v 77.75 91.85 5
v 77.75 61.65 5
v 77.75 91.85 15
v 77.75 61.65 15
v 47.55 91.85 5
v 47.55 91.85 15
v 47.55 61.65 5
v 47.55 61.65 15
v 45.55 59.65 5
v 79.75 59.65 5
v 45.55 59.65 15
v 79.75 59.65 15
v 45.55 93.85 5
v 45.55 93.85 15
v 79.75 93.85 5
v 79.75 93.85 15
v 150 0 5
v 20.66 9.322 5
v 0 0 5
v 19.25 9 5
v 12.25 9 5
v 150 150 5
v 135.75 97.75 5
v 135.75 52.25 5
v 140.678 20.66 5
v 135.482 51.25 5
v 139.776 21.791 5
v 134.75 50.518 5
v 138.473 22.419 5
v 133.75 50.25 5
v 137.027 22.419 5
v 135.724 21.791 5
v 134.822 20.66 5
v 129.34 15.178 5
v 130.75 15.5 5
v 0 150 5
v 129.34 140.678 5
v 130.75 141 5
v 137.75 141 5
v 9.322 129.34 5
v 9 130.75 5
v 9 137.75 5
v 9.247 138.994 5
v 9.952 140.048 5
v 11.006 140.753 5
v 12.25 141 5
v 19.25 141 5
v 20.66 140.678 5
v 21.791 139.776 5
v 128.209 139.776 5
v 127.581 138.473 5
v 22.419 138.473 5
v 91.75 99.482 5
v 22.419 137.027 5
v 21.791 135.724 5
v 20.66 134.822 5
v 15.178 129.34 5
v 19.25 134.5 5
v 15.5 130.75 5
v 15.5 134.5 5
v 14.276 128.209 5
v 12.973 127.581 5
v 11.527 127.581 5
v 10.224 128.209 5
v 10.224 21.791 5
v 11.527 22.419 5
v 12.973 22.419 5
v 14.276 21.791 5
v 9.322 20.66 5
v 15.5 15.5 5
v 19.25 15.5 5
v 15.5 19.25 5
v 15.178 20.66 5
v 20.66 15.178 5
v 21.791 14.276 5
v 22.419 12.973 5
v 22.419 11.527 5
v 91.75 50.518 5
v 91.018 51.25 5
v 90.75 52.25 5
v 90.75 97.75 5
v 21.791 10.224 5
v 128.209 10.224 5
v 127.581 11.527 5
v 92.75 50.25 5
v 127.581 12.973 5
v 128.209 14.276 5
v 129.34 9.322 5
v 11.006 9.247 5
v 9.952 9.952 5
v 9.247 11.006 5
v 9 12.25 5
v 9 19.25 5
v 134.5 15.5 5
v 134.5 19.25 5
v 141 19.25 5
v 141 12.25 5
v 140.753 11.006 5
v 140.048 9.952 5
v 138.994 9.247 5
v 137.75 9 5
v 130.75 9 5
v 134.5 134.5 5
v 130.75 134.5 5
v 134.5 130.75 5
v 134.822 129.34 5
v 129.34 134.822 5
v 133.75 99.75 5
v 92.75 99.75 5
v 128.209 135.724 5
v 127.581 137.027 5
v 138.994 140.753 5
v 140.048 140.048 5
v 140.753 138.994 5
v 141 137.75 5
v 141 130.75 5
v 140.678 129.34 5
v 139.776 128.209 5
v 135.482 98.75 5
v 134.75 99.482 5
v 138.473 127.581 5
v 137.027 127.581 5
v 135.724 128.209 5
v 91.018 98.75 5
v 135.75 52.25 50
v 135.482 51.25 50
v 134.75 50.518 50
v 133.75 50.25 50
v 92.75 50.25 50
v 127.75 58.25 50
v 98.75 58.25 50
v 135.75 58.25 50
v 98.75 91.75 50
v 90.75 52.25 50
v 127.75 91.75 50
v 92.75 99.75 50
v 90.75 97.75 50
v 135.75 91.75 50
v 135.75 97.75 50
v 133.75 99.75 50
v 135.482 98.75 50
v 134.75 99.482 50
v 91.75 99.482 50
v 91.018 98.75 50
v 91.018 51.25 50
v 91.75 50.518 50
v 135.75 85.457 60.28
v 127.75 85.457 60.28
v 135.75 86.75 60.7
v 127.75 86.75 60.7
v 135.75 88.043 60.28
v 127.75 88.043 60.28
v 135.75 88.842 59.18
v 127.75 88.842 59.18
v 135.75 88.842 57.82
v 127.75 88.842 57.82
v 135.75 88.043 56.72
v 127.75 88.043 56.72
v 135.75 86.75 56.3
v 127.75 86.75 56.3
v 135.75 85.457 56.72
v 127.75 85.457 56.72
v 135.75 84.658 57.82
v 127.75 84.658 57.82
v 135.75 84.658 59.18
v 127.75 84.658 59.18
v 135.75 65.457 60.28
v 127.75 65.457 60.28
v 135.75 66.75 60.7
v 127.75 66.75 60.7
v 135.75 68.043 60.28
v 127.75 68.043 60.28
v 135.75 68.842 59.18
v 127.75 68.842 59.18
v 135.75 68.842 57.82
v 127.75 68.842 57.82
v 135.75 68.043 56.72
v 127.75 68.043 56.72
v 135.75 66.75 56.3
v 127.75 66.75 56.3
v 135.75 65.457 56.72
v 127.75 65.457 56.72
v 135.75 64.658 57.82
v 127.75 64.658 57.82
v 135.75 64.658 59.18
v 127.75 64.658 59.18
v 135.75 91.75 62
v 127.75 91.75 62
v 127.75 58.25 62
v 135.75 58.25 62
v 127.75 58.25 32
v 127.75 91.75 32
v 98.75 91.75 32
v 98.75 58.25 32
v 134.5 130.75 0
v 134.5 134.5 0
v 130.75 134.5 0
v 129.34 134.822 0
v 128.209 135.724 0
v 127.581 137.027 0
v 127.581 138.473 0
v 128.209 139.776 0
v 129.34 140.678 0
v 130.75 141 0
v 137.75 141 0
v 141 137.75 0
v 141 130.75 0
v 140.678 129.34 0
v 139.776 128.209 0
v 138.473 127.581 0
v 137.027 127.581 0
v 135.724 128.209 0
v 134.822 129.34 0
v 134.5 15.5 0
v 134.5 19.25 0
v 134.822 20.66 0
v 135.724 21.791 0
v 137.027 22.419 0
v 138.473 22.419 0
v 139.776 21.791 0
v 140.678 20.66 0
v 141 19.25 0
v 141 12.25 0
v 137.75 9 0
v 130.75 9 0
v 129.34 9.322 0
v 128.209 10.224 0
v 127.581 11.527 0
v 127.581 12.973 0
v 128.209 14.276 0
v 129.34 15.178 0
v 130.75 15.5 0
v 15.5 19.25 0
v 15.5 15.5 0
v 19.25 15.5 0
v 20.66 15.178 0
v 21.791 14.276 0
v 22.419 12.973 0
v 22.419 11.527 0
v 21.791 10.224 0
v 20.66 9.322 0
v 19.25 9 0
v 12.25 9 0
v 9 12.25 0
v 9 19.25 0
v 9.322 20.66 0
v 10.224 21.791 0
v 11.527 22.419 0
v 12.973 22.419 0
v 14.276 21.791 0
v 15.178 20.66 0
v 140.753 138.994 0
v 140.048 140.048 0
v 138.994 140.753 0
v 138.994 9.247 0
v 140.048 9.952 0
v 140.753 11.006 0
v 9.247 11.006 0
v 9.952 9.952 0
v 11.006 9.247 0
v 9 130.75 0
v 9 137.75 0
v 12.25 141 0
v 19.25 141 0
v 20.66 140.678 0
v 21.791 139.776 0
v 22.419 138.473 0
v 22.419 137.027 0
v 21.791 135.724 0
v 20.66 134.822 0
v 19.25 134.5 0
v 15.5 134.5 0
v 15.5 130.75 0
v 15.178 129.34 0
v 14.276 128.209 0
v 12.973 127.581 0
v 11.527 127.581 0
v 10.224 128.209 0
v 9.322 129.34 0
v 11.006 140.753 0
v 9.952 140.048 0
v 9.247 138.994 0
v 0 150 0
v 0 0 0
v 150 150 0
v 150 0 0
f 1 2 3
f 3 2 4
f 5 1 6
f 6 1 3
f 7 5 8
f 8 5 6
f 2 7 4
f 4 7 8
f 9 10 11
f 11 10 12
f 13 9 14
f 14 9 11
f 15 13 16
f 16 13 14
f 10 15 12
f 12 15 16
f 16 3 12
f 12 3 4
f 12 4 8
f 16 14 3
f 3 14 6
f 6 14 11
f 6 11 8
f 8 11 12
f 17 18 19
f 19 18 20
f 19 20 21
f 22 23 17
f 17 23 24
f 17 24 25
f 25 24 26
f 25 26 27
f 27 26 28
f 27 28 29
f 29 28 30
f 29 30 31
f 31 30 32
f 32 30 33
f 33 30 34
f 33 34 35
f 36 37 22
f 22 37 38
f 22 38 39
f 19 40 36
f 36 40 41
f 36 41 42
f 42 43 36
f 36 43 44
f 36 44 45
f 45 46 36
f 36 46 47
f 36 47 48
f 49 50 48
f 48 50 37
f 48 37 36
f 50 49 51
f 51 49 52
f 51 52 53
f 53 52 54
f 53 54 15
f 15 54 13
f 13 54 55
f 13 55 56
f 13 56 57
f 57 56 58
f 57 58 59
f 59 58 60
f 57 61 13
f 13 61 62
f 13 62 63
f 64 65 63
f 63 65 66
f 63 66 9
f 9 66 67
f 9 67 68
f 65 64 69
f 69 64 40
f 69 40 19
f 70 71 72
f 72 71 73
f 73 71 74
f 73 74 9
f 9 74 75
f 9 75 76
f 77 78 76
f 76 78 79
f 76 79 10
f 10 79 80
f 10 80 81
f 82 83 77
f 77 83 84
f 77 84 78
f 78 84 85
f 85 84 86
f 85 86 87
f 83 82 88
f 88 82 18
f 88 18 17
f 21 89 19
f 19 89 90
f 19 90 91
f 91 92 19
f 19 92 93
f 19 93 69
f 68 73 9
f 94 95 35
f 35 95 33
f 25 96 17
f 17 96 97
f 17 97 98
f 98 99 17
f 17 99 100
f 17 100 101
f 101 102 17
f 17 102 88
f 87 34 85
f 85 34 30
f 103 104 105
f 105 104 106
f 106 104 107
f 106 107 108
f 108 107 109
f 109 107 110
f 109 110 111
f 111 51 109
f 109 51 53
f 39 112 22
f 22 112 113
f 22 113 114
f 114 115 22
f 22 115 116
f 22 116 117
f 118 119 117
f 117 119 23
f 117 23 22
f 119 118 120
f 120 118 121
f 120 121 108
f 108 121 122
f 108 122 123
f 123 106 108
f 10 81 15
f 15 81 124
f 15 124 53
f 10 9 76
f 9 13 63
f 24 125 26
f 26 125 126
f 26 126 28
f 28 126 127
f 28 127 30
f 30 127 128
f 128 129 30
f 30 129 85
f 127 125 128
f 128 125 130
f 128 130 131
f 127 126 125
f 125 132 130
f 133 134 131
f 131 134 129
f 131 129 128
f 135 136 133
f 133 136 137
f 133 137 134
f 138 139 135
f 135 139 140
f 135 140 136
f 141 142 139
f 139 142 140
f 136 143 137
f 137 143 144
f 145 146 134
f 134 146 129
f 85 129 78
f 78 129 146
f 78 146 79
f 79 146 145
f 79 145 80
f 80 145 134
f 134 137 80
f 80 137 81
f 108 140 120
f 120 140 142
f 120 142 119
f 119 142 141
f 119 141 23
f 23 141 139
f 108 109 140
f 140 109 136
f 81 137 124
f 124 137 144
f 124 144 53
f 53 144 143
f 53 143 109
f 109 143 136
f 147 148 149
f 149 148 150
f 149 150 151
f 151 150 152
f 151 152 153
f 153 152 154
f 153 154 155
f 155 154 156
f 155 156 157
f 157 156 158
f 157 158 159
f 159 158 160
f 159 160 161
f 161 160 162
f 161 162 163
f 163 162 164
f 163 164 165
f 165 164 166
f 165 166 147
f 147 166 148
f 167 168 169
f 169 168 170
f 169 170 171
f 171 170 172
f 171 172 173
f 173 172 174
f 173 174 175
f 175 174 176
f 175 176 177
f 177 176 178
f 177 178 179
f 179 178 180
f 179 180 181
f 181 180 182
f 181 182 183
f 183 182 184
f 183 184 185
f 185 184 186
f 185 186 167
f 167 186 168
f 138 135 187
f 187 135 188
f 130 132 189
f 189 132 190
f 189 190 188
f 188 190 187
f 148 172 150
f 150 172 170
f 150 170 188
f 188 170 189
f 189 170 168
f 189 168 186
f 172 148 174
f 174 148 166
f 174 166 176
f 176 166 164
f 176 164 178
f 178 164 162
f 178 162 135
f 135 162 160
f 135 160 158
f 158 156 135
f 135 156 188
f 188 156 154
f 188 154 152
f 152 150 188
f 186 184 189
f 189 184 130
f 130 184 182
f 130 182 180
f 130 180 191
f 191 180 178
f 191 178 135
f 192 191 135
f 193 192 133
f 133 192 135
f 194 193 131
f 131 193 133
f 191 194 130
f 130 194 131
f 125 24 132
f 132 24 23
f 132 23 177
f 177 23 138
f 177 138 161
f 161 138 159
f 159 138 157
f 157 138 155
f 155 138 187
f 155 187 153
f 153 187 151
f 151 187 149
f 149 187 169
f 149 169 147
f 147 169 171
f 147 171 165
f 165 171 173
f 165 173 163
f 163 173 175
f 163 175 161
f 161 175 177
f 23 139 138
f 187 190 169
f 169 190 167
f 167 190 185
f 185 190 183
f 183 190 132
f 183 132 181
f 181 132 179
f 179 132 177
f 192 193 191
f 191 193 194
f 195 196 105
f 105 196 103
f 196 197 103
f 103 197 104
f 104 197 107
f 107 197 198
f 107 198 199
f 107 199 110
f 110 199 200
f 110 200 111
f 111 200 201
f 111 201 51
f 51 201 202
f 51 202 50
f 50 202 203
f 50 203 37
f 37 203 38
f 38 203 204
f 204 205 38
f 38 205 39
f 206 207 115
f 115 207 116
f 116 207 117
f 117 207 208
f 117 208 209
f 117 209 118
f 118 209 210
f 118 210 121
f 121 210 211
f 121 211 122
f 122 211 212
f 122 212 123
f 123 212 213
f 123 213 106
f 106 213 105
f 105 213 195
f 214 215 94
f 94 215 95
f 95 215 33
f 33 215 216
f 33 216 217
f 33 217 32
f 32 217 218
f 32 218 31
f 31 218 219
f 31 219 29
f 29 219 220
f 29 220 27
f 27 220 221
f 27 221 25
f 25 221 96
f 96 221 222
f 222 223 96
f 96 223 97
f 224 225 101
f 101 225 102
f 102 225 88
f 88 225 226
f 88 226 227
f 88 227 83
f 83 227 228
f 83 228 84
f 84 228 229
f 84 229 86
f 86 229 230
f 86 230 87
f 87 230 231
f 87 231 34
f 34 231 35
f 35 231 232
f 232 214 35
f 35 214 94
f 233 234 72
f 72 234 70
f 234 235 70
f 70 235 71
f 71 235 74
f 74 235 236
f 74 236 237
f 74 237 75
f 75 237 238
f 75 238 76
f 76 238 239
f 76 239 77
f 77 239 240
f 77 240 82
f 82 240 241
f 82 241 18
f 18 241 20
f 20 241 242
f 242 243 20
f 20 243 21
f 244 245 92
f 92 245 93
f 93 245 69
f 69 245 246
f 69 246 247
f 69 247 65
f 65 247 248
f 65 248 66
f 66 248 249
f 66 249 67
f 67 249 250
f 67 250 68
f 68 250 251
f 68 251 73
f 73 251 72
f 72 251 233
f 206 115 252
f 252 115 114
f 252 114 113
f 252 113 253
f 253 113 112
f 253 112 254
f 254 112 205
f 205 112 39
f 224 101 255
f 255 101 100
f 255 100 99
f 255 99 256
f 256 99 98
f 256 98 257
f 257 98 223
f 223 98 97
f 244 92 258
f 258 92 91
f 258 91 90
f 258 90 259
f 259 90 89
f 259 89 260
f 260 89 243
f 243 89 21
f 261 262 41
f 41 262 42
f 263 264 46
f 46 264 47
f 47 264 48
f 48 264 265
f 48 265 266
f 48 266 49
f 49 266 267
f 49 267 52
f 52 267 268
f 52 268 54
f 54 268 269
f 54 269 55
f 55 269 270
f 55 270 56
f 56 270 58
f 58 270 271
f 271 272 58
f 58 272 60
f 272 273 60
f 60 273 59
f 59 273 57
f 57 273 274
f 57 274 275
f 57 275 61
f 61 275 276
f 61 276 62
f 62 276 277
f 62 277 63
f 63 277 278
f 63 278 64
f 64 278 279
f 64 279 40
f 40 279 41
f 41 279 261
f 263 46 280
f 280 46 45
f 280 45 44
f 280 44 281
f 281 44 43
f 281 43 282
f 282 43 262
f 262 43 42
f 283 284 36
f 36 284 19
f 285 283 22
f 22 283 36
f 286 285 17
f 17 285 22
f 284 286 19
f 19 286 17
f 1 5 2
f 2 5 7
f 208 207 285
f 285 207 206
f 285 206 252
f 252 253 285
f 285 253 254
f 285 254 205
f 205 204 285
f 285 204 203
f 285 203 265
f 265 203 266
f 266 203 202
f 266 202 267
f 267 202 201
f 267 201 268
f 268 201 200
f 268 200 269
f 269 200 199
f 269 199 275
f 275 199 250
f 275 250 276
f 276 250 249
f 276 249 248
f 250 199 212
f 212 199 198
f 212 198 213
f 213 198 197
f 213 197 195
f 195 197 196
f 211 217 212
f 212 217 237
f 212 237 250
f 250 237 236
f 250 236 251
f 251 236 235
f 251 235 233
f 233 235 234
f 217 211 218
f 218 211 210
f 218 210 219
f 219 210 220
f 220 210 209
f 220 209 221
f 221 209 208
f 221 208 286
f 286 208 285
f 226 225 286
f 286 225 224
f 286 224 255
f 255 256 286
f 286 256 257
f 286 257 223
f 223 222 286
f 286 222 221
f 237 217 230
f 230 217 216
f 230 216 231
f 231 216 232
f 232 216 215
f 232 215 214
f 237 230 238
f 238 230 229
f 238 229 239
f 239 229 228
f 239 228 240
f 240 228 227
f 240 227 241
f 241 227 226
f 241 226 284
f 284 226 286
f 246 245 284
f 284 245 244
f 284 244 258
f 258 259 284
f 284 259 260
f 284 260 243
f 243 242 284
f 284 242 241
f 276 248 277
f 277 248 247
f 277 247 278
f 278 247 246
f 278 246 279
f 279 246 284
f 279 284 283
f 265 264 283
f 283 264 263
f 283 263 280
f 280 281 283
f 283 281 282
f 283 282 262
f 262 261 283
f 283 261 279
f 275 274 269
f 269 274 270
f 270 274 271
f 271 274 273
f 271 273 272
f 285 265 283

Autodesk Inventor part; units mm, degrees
ref_plane "YZ Plane" through (0, 0, 0) normal (1, 0, 0) x (0, 1, 0)
ref_plane "XZ Plane" through (0, 0, 0) normal (0, 1, 0) x (-1, 0, 0)
ref_plane "XY Plane" through (0, 0, 0) normal (0, 0, 1) x (1, 0, 0)
sketch "스케치1" plane through (0, 0, 0) normal (0, 0, 1) x (1, 0, 0)
  line L0 (0, 150) -> (150, 150)
  line L1 (150, 150) -> (150, 0)
  line L2 (150, 0) -> (0, 0)
  line L3 (0, 0) -> (0, 150)
  dimension "d0" = 150
  dimension "d1" = 150
extrude "돌출1" add sketch "스케치1" along normal blind 5
sketch "스케치2" plane through (0, 0, 5) normal (0, 0, 1) x (1, 0, 0)
  line L0 (0, 0) -> (150, 0) projected
  line L1 (150, 0) -> (150, 150) projected
  line L2 (150, 150) -> (0, 150) projected
  line L3 (0, 150) -> (0, 0) projected
  line L4 (12.25, 137.75) -> (137.75, 137.75)
  line L5 (137.75, 137.75) -> (137.75, 12.25)
  line L6 (137.75, 12.25) -> (12.25, 12.25)
  line L7 (12.25, 12.25) -> (12.25, 137.75)
  dimension "d4" = 12.25
sketch "스케치4" plane through (0, 0, 0) normal (0, 0, -1) x (-1, 0, 0)
  line L0 (0, 0) -> (-150, 0) projected
  line L1 (0, 150) -> (0, 0) projected
  line L2 (-150, 150) -> (0, 150) projected
  line L3 (-150, 0) -> (-150, 150) projected
  line L4 (-12.25, 12.25) -> (-137.75, 12.25)
  line L5 (-137.75, 12.25) -> (-137.75, 137.75)
  line L6 (-137.75, 137.75) -> (-12.25, 137.75)
  line L7 (-12.25, 137.75) -> (-12.25, 12.25)
  circle A0 centre (-12.25, 137.75) radius 3.25
  circle A1 centre (-137.75, 137.75) radius 3.25
  circle A2 centre (-12.25, 12.25) radius 3.25
  circle A3 centre (-137.75, 12.25) radius 3.25
  line L8 (-12.25, 137.75) -> (-12.25, 130.75) construction
  line L9 (-9, 137.75) -> (-9, 130.75)
  line L10 (-15.5, 130.75) -> (-15.5, 137.75)
  arc A4 (-9, 137.75) -> (-15.5, 137.75) centre (-12.25, 137.75) ccw
  arc A5 (-15.5, 130.75) -> (-9, 130.75) centre (-12.25, 130.75) ccw
  line L11 (-12.25, 137.75) -> (-19.25, 137.75) construction
  line L12 (-12.25, 141.0002) -> (-19.25, 141.0002)
  line L13 (-19.25, 134.4998) -> (-12.25, 134.4998)
  arc A6 (-12.25, 134.4998) -> (-12.25, 141.0002) centre (-12.25, 137.75) ccw
  arc A7 (-19.25, 141.0002) -> (-19.25, 134.4998) centre (-19.25, 137.75) ccw
  point P0 (-12.25, 134.25)
  point P1 (-15.75, 137.75)
  dimension "d22" = 12.25
  dimension "d23" = 6.5
  dimension "d26" = 125.5
  dimension "d33" = 125.5
  dimension "d57" = 7
  dimension "d58" = 7
extrude "돌출3" cut sketch "스케치4" against normal blind 3.5 contours A3 L5 L4 | L4 L5 A3 | A2 L7 L4 | L4 L7 A2 | A1 L6 L5 | L5 L6 A1 | A0 L6 L7 | L7 L6 A0
sketch "스케치8" plane through (0, 0, 5) normal (0, 0, 1) x (1, 0, 0)
  point P0 (0, 0)
sketch "스케치9" plane through (0, 0, 0) normal (0, 0, -1) x (-1, 0, 0)
  point P0 (0, 0)
sketch "스케치10" plane through (0, 0, 0) normal (0, 0, -1) x (-1, 0, 0)
  circle A0 centre (-12.25, 137.75) radius 3.25 projected
  circle A1 centre (-137.75, 137.75) radius 3.25 projected
  circle A2 centre (-137.75, 12.25) radius 3.25 projected
  circle A3 centre (-12.25, 12.25) radius 3.25 projected
  circle A4 centre (-137.75, 12.25) radius 3.25 projected
  circle A5 centre (-12.25, 12.25) radius 3.25 projected
  circle A6 centre (-137.75, 137.75) radius 3.25 projected
  circle A7 centre (-12.25, 137.75) radius 3.25 projected
  line L0 (0, 0) -> (-150, 0) projected
  line L1 (0, 150) -> (0, 0) projected
  line L2 (-150, 150) -> (0, 150) projected
  line L3 (-150, 0) -> (-150, 150) projected
sketch "스케치11" plane through (0, 0, 0) normal (0, 0, -1) x (-1, 0, 0)
  circle A0 centre (-12.25, 137.75) radius 3.25 projected
  line L0 (-12.25, 137.75) -> (-12.25, 130.75) construction
  line L1 (-9, 137.75) -> (-9, 130.75)
  line L2 (-15.5, 130.75) -> (-15.5, 137.75)
  arc A1 (-9, 137.75) -> (-15.5, 137.75) centre (-12.25, 137.75) ccw
  arc A2 (-15.5, 130.75) -> (-9, 130.75) centre (-12.25, 130.75) ccw
  line L3 (-12.25, 137.75) -> (-19.25, 137.75) construction
  line L4 (-12.25, 141) -> (-19.25, 141)
  line L5 (-19.25, 134.5) -> (-12.25, 134.5)
  arc A3 (-12.25, 134.5) -> (-12.25, 141) centre (-12.25, 137.75) ccw
  arc A4 (-19.25, 141) -> (-19.25, 134.5) centre (-19.25, 137.75) ccw
  point P0 (0, 0)
  point P1 (-12.25, 134.25)
  point P2 (-15.75, 137.75)
  point P3 (-15.5, 134.5)
  dimension "d60" = 3.25
  dimension "d61" = 7
  dimension "d62" = 7
  dimension "d63" = 3.25
extrude "돌출7" cut sketch "스케치11" against normal blind 5
sketch "스케치12" plane through (0, 0, 0) normal (0, 0, -1) x (-1, 0, 0)
  circle A0 centre (-12.25, 12.25) radius 3.25 projected
  line L0 (-12.25, 12.25) -> (-12.25, 19.25) construction
  line L1 (-9, 12.25) -> (-9, 19.25)
  line L2 (-15.5, 19.25) -> (-15.5, 12.25)
  arc A1 (-15.5, 12.25) -> (-9, 12.25) centre (-12.25, 12.25) ccw
  arc A2 (-9, 19.25) -> (-15.5, 19.25) centre (-12.25, 19.25) ccw
  line L3 (-12.25, 12.25) -> (-19.25, 12.25) construction
  line L4 (-12.25, 15.5) -> (-19.25, 15.5)
  line L5 (-19.25, 9) -> (-12.25, 9)
  arc A3 (-12.25, 9) -> (-12.25, 15.5) centre (-12.25, 12.25) ccw
  arc A4 (-19.25, 15.5) -> (-19.25, 9) centre (-19.25, 12.25) ccw
  line L6 (-137.75, 12.25) -> (-137.75, 19.25) construction
  line L7 (-134.5, 12.25) -> (-134.5, 19.25)
  line L8 (-141, 19.25) -> (-141, 12.25)
  arc A5 (-141, 12.25) -> (-134.5, 12.25) centre (-137.75, 12.25) ccw
  arc A6 (-134.5, 19.25) -> (-141, 19.25) centre (-137.75, 19.25) ccw
  line L9 (-137.75, 12.25) -> (-130.75, 12.25) construction
  line L10 (-137.75, 15.5) -> (-130.75, 15.5)
  line L11 (-130.75, 9) -> (-137.75, 9)
  arc A7 (-137.75, 15.5) -> (-137.75, 9) centre (-137.75, 12.25) ccw
  arc A8 (-130.75, 9) -> (-130.75, 15.5) centre (-130.75, 12.25) ccw
  circle A9 centre (-137.75, 137.75) radius 3.25 projected
  line L12 (-137.75, 137.75) -> (-137.75, 130.75) construction
  line L13 (-134.5, 137.75) -> (-134.5, 130.75)
  line L14 (-141, 130.75) -> (-141, 137.75)
  arc A10 (-134.5, 137.75) -> (-141, 137.75) centre (-137.75, 137.75) ccw
  arc A11 (-141, 130.75) -> (-134.5, 130.75) centre (-137.75, 130.75) ccw
  line L15 (-137.75, 137.75) -> (-130.75, 137.75) construction
  line L16 (-137.75, 134.5) -> (-130.75, 134.5)
  line L17 (-130.75, 141) -> (-137.75, 141)
  arc A12 (-137.75, 141) -> (-137.75, 134.5) centre (-137.75, 137.75) ccw
  arc A13 (-130.75, 134.5) -> (-130.75, 141) centre (-130.75, 137.75) ccw
  point P0 (0, 0)
  point P1 (-12.25, 15.75)
  point P2 (-15.75, 12.25)
  point P3 (-137.75, 15.75)
  point P4 (-134.25, 12.25)
  point P5 (-137.75, 134.25)
  point P6 (-134.25, 137.75)
  point P7 (-134.5, 134.5)
  point P8 (-134.5, 15.5)
  point P9 (-15.5, 15.5)
  dimension "d66" = 3.25
  dimension "d67" = 7
  dimension "d68" = 7
  dimension "d69" = 3.25
  dimension "d70" = 3.25
  dimension "d71" = 7
  dimension "d72" = 3.25
  dimension "d73" = 7
  dimension "d74" = 3.25
  dimension "d75" = 3.25
  dimension "d76" = 7
  dimension "d77" = 7
extrude "돌출8" cut sketch "스케치12" against normal blind 5
sketch "스케치13" plane through (0, 0, 5) normal (0, 0, 1) x (1, 0, 0)
  line L0 (90.75, 99.75) -> (90.75, 50.25) projected
  line L1 (90.75, 50.25) -> (135.75, 50.25) projected
  line L2 (135.75, 99.75) -> (90.75, 99.75) projected
  line L3 (135.75, 99.75) -> (135.75, 50.25) projected
  point P0 (0, 0)
extrude "돌출9" add sketch "스케치13" along normal blind 27
sketch "스케치14" plane through (0, 0, 32) normal (0, 0, 1) x (1, 0, 0)
  line L0 (90.75, 99.75) -> (90.75, 50.25) projected
  line L1 (90.75, 50.25) -> (135.75, 50.25) projected
  line L2 (135.75, 50.25) -> (135.75, 99.75) projected
  line L3 (135.75, 99.75) -> (90.75, 99.75) projected
  line L4 (127.75, 58.25) -> (98.75, 58.25)
  line L5 (98.75, 58.25) -> (98.75, 91.75)
  line L6 (98.75, 91.75) -> (127.75, 91.75)
  line L7 (127.75, 91.75) -> (127.75, 58.25)
  point P0 (0, 0)
  dimension "d84" = 8
extrude "돌출10" add sketch "스케치14" along normal blind 18
sketch "스케치15" plane through (0, 0, 50) normal (0, 0, 1) x (1, 0, 0)
  line L0 (127.75, 91.75) -> (127.75, 58.25) projected
  line L1 (127.75, 58.25) -> (135.75, 58.25)
  line L2 (135.75, 99.75) -> (135.75, 50.25) projected
  line L3 (127.75, 91.75) -> (135.75, 91.75)
  point P0 (0, 0)
extrude "돌출11" add sketch "스케치15" along normal blind 12
sketch "스케치16" plane through (127.75, 58.25, 32) normal (-1, 0, 0) x (0, 0, 1)
  line L0 (0, 0) -> (0, 33.5) projected
  line L1 (0, 0) -> (0, 33.5) projected
  line L2 (0, 0) -> (18, 0) projected
  line L3 (18, 0) -> (30, 0) projected
  line L4 (30, 33.5) -> (30, 0) projected
  line L5 (18, 33.5) -> (30, 33.5) projected
  line L6 (0, 33.5) -> (18, 33.5) projected
  point P0 (-32, -58.25)
sketch "스케치17" plane through (135.75, 50.25, 5) normal (1, 0, 0) x (0, 0, -1)
  point P0 (5, -50.25)
sketch "스케치18" plane through (127.75, 58.25, 32) normal (-1, 0, 0) x (0, 0, 1)
  circle A0 centre (26.5, 28.5) radius 2.2
  circle A1 centre (26.5, 8.5) radius 2.2
  line L0 (18, 33.5) -> (30, 33.5) projected
  line L1 (0, 0) -> (0, 33.5) projected
  point P0 (-32, -58.25)
  dimension "d89" = 4.4
  dimension "d90" = 5
  dimension "d91" = 26.5
  dimension "d92" = 26.5
  dimension "d93" = 20
  dimension "d94" = 4.4
extrude "돌출12" cut sketch "스케치18" against normal blind 8
sketch "스케치19" plane through (0, 0, 5) normal (0, 0, 1) x (1, 0, 0)
  point P0 (0, 0)
fillet "모깎기3" radius 2 8 edges at (90.75, 99.75, 41) (90.75, 99.75, 18.5) (135.75, 99.75, 41) (135.75, 99.75, 18.5) (90.75, 50.25, 41) (90.75, 50.25, 18.5) (135.75, 50.25, 41) (135.75, 50.25, 18.5)
sketch "스케치20" plane through (0, 0, 5) normal (0, 0, 1) x (1, 0, 0)
  line L0 (77.75, 61.65) -> (47.55, 61.65)
  line L1 (47.55, 61.65) -> (47.55, 91.85)
  line L2 (47.55, 91.85) -> (77.75, 91.85)
  line L3 (77.75, 91.85) -> (77.75, 61.65)
  line L4 (137.75, 12.25) -> (12.25, 12.25) projected
  line L5 (90.75, 97.75) -> (90.75, 52.25) projected
  line L6 (45.55, 59.65) -> (79.75, 59.65)
  line L7 (79.75, 59.65) -> (79.75, 93.85)
  line L8 (79.75, 93.85) -> (45.55, 93.85)
  line L9 (45.55, 93.85) -> (45.55, 59.65)
  line L10 (90.75, 52.25) -> (90.75, 97.75) projected
  point P0 (0, 0)
  point P1 (90.75, 57.9)
  point P2 (90.75, 92.1)
  dimension "d98" = 30.2
  dimension "d99" = 30.2
  dimension "d100" = 49.4
  dimension "d101" = 2
  dimension "d104" = 11
extrude "돌출13" add sketch "스케치20" along normal blind 10
properties part number "yield_bed"
